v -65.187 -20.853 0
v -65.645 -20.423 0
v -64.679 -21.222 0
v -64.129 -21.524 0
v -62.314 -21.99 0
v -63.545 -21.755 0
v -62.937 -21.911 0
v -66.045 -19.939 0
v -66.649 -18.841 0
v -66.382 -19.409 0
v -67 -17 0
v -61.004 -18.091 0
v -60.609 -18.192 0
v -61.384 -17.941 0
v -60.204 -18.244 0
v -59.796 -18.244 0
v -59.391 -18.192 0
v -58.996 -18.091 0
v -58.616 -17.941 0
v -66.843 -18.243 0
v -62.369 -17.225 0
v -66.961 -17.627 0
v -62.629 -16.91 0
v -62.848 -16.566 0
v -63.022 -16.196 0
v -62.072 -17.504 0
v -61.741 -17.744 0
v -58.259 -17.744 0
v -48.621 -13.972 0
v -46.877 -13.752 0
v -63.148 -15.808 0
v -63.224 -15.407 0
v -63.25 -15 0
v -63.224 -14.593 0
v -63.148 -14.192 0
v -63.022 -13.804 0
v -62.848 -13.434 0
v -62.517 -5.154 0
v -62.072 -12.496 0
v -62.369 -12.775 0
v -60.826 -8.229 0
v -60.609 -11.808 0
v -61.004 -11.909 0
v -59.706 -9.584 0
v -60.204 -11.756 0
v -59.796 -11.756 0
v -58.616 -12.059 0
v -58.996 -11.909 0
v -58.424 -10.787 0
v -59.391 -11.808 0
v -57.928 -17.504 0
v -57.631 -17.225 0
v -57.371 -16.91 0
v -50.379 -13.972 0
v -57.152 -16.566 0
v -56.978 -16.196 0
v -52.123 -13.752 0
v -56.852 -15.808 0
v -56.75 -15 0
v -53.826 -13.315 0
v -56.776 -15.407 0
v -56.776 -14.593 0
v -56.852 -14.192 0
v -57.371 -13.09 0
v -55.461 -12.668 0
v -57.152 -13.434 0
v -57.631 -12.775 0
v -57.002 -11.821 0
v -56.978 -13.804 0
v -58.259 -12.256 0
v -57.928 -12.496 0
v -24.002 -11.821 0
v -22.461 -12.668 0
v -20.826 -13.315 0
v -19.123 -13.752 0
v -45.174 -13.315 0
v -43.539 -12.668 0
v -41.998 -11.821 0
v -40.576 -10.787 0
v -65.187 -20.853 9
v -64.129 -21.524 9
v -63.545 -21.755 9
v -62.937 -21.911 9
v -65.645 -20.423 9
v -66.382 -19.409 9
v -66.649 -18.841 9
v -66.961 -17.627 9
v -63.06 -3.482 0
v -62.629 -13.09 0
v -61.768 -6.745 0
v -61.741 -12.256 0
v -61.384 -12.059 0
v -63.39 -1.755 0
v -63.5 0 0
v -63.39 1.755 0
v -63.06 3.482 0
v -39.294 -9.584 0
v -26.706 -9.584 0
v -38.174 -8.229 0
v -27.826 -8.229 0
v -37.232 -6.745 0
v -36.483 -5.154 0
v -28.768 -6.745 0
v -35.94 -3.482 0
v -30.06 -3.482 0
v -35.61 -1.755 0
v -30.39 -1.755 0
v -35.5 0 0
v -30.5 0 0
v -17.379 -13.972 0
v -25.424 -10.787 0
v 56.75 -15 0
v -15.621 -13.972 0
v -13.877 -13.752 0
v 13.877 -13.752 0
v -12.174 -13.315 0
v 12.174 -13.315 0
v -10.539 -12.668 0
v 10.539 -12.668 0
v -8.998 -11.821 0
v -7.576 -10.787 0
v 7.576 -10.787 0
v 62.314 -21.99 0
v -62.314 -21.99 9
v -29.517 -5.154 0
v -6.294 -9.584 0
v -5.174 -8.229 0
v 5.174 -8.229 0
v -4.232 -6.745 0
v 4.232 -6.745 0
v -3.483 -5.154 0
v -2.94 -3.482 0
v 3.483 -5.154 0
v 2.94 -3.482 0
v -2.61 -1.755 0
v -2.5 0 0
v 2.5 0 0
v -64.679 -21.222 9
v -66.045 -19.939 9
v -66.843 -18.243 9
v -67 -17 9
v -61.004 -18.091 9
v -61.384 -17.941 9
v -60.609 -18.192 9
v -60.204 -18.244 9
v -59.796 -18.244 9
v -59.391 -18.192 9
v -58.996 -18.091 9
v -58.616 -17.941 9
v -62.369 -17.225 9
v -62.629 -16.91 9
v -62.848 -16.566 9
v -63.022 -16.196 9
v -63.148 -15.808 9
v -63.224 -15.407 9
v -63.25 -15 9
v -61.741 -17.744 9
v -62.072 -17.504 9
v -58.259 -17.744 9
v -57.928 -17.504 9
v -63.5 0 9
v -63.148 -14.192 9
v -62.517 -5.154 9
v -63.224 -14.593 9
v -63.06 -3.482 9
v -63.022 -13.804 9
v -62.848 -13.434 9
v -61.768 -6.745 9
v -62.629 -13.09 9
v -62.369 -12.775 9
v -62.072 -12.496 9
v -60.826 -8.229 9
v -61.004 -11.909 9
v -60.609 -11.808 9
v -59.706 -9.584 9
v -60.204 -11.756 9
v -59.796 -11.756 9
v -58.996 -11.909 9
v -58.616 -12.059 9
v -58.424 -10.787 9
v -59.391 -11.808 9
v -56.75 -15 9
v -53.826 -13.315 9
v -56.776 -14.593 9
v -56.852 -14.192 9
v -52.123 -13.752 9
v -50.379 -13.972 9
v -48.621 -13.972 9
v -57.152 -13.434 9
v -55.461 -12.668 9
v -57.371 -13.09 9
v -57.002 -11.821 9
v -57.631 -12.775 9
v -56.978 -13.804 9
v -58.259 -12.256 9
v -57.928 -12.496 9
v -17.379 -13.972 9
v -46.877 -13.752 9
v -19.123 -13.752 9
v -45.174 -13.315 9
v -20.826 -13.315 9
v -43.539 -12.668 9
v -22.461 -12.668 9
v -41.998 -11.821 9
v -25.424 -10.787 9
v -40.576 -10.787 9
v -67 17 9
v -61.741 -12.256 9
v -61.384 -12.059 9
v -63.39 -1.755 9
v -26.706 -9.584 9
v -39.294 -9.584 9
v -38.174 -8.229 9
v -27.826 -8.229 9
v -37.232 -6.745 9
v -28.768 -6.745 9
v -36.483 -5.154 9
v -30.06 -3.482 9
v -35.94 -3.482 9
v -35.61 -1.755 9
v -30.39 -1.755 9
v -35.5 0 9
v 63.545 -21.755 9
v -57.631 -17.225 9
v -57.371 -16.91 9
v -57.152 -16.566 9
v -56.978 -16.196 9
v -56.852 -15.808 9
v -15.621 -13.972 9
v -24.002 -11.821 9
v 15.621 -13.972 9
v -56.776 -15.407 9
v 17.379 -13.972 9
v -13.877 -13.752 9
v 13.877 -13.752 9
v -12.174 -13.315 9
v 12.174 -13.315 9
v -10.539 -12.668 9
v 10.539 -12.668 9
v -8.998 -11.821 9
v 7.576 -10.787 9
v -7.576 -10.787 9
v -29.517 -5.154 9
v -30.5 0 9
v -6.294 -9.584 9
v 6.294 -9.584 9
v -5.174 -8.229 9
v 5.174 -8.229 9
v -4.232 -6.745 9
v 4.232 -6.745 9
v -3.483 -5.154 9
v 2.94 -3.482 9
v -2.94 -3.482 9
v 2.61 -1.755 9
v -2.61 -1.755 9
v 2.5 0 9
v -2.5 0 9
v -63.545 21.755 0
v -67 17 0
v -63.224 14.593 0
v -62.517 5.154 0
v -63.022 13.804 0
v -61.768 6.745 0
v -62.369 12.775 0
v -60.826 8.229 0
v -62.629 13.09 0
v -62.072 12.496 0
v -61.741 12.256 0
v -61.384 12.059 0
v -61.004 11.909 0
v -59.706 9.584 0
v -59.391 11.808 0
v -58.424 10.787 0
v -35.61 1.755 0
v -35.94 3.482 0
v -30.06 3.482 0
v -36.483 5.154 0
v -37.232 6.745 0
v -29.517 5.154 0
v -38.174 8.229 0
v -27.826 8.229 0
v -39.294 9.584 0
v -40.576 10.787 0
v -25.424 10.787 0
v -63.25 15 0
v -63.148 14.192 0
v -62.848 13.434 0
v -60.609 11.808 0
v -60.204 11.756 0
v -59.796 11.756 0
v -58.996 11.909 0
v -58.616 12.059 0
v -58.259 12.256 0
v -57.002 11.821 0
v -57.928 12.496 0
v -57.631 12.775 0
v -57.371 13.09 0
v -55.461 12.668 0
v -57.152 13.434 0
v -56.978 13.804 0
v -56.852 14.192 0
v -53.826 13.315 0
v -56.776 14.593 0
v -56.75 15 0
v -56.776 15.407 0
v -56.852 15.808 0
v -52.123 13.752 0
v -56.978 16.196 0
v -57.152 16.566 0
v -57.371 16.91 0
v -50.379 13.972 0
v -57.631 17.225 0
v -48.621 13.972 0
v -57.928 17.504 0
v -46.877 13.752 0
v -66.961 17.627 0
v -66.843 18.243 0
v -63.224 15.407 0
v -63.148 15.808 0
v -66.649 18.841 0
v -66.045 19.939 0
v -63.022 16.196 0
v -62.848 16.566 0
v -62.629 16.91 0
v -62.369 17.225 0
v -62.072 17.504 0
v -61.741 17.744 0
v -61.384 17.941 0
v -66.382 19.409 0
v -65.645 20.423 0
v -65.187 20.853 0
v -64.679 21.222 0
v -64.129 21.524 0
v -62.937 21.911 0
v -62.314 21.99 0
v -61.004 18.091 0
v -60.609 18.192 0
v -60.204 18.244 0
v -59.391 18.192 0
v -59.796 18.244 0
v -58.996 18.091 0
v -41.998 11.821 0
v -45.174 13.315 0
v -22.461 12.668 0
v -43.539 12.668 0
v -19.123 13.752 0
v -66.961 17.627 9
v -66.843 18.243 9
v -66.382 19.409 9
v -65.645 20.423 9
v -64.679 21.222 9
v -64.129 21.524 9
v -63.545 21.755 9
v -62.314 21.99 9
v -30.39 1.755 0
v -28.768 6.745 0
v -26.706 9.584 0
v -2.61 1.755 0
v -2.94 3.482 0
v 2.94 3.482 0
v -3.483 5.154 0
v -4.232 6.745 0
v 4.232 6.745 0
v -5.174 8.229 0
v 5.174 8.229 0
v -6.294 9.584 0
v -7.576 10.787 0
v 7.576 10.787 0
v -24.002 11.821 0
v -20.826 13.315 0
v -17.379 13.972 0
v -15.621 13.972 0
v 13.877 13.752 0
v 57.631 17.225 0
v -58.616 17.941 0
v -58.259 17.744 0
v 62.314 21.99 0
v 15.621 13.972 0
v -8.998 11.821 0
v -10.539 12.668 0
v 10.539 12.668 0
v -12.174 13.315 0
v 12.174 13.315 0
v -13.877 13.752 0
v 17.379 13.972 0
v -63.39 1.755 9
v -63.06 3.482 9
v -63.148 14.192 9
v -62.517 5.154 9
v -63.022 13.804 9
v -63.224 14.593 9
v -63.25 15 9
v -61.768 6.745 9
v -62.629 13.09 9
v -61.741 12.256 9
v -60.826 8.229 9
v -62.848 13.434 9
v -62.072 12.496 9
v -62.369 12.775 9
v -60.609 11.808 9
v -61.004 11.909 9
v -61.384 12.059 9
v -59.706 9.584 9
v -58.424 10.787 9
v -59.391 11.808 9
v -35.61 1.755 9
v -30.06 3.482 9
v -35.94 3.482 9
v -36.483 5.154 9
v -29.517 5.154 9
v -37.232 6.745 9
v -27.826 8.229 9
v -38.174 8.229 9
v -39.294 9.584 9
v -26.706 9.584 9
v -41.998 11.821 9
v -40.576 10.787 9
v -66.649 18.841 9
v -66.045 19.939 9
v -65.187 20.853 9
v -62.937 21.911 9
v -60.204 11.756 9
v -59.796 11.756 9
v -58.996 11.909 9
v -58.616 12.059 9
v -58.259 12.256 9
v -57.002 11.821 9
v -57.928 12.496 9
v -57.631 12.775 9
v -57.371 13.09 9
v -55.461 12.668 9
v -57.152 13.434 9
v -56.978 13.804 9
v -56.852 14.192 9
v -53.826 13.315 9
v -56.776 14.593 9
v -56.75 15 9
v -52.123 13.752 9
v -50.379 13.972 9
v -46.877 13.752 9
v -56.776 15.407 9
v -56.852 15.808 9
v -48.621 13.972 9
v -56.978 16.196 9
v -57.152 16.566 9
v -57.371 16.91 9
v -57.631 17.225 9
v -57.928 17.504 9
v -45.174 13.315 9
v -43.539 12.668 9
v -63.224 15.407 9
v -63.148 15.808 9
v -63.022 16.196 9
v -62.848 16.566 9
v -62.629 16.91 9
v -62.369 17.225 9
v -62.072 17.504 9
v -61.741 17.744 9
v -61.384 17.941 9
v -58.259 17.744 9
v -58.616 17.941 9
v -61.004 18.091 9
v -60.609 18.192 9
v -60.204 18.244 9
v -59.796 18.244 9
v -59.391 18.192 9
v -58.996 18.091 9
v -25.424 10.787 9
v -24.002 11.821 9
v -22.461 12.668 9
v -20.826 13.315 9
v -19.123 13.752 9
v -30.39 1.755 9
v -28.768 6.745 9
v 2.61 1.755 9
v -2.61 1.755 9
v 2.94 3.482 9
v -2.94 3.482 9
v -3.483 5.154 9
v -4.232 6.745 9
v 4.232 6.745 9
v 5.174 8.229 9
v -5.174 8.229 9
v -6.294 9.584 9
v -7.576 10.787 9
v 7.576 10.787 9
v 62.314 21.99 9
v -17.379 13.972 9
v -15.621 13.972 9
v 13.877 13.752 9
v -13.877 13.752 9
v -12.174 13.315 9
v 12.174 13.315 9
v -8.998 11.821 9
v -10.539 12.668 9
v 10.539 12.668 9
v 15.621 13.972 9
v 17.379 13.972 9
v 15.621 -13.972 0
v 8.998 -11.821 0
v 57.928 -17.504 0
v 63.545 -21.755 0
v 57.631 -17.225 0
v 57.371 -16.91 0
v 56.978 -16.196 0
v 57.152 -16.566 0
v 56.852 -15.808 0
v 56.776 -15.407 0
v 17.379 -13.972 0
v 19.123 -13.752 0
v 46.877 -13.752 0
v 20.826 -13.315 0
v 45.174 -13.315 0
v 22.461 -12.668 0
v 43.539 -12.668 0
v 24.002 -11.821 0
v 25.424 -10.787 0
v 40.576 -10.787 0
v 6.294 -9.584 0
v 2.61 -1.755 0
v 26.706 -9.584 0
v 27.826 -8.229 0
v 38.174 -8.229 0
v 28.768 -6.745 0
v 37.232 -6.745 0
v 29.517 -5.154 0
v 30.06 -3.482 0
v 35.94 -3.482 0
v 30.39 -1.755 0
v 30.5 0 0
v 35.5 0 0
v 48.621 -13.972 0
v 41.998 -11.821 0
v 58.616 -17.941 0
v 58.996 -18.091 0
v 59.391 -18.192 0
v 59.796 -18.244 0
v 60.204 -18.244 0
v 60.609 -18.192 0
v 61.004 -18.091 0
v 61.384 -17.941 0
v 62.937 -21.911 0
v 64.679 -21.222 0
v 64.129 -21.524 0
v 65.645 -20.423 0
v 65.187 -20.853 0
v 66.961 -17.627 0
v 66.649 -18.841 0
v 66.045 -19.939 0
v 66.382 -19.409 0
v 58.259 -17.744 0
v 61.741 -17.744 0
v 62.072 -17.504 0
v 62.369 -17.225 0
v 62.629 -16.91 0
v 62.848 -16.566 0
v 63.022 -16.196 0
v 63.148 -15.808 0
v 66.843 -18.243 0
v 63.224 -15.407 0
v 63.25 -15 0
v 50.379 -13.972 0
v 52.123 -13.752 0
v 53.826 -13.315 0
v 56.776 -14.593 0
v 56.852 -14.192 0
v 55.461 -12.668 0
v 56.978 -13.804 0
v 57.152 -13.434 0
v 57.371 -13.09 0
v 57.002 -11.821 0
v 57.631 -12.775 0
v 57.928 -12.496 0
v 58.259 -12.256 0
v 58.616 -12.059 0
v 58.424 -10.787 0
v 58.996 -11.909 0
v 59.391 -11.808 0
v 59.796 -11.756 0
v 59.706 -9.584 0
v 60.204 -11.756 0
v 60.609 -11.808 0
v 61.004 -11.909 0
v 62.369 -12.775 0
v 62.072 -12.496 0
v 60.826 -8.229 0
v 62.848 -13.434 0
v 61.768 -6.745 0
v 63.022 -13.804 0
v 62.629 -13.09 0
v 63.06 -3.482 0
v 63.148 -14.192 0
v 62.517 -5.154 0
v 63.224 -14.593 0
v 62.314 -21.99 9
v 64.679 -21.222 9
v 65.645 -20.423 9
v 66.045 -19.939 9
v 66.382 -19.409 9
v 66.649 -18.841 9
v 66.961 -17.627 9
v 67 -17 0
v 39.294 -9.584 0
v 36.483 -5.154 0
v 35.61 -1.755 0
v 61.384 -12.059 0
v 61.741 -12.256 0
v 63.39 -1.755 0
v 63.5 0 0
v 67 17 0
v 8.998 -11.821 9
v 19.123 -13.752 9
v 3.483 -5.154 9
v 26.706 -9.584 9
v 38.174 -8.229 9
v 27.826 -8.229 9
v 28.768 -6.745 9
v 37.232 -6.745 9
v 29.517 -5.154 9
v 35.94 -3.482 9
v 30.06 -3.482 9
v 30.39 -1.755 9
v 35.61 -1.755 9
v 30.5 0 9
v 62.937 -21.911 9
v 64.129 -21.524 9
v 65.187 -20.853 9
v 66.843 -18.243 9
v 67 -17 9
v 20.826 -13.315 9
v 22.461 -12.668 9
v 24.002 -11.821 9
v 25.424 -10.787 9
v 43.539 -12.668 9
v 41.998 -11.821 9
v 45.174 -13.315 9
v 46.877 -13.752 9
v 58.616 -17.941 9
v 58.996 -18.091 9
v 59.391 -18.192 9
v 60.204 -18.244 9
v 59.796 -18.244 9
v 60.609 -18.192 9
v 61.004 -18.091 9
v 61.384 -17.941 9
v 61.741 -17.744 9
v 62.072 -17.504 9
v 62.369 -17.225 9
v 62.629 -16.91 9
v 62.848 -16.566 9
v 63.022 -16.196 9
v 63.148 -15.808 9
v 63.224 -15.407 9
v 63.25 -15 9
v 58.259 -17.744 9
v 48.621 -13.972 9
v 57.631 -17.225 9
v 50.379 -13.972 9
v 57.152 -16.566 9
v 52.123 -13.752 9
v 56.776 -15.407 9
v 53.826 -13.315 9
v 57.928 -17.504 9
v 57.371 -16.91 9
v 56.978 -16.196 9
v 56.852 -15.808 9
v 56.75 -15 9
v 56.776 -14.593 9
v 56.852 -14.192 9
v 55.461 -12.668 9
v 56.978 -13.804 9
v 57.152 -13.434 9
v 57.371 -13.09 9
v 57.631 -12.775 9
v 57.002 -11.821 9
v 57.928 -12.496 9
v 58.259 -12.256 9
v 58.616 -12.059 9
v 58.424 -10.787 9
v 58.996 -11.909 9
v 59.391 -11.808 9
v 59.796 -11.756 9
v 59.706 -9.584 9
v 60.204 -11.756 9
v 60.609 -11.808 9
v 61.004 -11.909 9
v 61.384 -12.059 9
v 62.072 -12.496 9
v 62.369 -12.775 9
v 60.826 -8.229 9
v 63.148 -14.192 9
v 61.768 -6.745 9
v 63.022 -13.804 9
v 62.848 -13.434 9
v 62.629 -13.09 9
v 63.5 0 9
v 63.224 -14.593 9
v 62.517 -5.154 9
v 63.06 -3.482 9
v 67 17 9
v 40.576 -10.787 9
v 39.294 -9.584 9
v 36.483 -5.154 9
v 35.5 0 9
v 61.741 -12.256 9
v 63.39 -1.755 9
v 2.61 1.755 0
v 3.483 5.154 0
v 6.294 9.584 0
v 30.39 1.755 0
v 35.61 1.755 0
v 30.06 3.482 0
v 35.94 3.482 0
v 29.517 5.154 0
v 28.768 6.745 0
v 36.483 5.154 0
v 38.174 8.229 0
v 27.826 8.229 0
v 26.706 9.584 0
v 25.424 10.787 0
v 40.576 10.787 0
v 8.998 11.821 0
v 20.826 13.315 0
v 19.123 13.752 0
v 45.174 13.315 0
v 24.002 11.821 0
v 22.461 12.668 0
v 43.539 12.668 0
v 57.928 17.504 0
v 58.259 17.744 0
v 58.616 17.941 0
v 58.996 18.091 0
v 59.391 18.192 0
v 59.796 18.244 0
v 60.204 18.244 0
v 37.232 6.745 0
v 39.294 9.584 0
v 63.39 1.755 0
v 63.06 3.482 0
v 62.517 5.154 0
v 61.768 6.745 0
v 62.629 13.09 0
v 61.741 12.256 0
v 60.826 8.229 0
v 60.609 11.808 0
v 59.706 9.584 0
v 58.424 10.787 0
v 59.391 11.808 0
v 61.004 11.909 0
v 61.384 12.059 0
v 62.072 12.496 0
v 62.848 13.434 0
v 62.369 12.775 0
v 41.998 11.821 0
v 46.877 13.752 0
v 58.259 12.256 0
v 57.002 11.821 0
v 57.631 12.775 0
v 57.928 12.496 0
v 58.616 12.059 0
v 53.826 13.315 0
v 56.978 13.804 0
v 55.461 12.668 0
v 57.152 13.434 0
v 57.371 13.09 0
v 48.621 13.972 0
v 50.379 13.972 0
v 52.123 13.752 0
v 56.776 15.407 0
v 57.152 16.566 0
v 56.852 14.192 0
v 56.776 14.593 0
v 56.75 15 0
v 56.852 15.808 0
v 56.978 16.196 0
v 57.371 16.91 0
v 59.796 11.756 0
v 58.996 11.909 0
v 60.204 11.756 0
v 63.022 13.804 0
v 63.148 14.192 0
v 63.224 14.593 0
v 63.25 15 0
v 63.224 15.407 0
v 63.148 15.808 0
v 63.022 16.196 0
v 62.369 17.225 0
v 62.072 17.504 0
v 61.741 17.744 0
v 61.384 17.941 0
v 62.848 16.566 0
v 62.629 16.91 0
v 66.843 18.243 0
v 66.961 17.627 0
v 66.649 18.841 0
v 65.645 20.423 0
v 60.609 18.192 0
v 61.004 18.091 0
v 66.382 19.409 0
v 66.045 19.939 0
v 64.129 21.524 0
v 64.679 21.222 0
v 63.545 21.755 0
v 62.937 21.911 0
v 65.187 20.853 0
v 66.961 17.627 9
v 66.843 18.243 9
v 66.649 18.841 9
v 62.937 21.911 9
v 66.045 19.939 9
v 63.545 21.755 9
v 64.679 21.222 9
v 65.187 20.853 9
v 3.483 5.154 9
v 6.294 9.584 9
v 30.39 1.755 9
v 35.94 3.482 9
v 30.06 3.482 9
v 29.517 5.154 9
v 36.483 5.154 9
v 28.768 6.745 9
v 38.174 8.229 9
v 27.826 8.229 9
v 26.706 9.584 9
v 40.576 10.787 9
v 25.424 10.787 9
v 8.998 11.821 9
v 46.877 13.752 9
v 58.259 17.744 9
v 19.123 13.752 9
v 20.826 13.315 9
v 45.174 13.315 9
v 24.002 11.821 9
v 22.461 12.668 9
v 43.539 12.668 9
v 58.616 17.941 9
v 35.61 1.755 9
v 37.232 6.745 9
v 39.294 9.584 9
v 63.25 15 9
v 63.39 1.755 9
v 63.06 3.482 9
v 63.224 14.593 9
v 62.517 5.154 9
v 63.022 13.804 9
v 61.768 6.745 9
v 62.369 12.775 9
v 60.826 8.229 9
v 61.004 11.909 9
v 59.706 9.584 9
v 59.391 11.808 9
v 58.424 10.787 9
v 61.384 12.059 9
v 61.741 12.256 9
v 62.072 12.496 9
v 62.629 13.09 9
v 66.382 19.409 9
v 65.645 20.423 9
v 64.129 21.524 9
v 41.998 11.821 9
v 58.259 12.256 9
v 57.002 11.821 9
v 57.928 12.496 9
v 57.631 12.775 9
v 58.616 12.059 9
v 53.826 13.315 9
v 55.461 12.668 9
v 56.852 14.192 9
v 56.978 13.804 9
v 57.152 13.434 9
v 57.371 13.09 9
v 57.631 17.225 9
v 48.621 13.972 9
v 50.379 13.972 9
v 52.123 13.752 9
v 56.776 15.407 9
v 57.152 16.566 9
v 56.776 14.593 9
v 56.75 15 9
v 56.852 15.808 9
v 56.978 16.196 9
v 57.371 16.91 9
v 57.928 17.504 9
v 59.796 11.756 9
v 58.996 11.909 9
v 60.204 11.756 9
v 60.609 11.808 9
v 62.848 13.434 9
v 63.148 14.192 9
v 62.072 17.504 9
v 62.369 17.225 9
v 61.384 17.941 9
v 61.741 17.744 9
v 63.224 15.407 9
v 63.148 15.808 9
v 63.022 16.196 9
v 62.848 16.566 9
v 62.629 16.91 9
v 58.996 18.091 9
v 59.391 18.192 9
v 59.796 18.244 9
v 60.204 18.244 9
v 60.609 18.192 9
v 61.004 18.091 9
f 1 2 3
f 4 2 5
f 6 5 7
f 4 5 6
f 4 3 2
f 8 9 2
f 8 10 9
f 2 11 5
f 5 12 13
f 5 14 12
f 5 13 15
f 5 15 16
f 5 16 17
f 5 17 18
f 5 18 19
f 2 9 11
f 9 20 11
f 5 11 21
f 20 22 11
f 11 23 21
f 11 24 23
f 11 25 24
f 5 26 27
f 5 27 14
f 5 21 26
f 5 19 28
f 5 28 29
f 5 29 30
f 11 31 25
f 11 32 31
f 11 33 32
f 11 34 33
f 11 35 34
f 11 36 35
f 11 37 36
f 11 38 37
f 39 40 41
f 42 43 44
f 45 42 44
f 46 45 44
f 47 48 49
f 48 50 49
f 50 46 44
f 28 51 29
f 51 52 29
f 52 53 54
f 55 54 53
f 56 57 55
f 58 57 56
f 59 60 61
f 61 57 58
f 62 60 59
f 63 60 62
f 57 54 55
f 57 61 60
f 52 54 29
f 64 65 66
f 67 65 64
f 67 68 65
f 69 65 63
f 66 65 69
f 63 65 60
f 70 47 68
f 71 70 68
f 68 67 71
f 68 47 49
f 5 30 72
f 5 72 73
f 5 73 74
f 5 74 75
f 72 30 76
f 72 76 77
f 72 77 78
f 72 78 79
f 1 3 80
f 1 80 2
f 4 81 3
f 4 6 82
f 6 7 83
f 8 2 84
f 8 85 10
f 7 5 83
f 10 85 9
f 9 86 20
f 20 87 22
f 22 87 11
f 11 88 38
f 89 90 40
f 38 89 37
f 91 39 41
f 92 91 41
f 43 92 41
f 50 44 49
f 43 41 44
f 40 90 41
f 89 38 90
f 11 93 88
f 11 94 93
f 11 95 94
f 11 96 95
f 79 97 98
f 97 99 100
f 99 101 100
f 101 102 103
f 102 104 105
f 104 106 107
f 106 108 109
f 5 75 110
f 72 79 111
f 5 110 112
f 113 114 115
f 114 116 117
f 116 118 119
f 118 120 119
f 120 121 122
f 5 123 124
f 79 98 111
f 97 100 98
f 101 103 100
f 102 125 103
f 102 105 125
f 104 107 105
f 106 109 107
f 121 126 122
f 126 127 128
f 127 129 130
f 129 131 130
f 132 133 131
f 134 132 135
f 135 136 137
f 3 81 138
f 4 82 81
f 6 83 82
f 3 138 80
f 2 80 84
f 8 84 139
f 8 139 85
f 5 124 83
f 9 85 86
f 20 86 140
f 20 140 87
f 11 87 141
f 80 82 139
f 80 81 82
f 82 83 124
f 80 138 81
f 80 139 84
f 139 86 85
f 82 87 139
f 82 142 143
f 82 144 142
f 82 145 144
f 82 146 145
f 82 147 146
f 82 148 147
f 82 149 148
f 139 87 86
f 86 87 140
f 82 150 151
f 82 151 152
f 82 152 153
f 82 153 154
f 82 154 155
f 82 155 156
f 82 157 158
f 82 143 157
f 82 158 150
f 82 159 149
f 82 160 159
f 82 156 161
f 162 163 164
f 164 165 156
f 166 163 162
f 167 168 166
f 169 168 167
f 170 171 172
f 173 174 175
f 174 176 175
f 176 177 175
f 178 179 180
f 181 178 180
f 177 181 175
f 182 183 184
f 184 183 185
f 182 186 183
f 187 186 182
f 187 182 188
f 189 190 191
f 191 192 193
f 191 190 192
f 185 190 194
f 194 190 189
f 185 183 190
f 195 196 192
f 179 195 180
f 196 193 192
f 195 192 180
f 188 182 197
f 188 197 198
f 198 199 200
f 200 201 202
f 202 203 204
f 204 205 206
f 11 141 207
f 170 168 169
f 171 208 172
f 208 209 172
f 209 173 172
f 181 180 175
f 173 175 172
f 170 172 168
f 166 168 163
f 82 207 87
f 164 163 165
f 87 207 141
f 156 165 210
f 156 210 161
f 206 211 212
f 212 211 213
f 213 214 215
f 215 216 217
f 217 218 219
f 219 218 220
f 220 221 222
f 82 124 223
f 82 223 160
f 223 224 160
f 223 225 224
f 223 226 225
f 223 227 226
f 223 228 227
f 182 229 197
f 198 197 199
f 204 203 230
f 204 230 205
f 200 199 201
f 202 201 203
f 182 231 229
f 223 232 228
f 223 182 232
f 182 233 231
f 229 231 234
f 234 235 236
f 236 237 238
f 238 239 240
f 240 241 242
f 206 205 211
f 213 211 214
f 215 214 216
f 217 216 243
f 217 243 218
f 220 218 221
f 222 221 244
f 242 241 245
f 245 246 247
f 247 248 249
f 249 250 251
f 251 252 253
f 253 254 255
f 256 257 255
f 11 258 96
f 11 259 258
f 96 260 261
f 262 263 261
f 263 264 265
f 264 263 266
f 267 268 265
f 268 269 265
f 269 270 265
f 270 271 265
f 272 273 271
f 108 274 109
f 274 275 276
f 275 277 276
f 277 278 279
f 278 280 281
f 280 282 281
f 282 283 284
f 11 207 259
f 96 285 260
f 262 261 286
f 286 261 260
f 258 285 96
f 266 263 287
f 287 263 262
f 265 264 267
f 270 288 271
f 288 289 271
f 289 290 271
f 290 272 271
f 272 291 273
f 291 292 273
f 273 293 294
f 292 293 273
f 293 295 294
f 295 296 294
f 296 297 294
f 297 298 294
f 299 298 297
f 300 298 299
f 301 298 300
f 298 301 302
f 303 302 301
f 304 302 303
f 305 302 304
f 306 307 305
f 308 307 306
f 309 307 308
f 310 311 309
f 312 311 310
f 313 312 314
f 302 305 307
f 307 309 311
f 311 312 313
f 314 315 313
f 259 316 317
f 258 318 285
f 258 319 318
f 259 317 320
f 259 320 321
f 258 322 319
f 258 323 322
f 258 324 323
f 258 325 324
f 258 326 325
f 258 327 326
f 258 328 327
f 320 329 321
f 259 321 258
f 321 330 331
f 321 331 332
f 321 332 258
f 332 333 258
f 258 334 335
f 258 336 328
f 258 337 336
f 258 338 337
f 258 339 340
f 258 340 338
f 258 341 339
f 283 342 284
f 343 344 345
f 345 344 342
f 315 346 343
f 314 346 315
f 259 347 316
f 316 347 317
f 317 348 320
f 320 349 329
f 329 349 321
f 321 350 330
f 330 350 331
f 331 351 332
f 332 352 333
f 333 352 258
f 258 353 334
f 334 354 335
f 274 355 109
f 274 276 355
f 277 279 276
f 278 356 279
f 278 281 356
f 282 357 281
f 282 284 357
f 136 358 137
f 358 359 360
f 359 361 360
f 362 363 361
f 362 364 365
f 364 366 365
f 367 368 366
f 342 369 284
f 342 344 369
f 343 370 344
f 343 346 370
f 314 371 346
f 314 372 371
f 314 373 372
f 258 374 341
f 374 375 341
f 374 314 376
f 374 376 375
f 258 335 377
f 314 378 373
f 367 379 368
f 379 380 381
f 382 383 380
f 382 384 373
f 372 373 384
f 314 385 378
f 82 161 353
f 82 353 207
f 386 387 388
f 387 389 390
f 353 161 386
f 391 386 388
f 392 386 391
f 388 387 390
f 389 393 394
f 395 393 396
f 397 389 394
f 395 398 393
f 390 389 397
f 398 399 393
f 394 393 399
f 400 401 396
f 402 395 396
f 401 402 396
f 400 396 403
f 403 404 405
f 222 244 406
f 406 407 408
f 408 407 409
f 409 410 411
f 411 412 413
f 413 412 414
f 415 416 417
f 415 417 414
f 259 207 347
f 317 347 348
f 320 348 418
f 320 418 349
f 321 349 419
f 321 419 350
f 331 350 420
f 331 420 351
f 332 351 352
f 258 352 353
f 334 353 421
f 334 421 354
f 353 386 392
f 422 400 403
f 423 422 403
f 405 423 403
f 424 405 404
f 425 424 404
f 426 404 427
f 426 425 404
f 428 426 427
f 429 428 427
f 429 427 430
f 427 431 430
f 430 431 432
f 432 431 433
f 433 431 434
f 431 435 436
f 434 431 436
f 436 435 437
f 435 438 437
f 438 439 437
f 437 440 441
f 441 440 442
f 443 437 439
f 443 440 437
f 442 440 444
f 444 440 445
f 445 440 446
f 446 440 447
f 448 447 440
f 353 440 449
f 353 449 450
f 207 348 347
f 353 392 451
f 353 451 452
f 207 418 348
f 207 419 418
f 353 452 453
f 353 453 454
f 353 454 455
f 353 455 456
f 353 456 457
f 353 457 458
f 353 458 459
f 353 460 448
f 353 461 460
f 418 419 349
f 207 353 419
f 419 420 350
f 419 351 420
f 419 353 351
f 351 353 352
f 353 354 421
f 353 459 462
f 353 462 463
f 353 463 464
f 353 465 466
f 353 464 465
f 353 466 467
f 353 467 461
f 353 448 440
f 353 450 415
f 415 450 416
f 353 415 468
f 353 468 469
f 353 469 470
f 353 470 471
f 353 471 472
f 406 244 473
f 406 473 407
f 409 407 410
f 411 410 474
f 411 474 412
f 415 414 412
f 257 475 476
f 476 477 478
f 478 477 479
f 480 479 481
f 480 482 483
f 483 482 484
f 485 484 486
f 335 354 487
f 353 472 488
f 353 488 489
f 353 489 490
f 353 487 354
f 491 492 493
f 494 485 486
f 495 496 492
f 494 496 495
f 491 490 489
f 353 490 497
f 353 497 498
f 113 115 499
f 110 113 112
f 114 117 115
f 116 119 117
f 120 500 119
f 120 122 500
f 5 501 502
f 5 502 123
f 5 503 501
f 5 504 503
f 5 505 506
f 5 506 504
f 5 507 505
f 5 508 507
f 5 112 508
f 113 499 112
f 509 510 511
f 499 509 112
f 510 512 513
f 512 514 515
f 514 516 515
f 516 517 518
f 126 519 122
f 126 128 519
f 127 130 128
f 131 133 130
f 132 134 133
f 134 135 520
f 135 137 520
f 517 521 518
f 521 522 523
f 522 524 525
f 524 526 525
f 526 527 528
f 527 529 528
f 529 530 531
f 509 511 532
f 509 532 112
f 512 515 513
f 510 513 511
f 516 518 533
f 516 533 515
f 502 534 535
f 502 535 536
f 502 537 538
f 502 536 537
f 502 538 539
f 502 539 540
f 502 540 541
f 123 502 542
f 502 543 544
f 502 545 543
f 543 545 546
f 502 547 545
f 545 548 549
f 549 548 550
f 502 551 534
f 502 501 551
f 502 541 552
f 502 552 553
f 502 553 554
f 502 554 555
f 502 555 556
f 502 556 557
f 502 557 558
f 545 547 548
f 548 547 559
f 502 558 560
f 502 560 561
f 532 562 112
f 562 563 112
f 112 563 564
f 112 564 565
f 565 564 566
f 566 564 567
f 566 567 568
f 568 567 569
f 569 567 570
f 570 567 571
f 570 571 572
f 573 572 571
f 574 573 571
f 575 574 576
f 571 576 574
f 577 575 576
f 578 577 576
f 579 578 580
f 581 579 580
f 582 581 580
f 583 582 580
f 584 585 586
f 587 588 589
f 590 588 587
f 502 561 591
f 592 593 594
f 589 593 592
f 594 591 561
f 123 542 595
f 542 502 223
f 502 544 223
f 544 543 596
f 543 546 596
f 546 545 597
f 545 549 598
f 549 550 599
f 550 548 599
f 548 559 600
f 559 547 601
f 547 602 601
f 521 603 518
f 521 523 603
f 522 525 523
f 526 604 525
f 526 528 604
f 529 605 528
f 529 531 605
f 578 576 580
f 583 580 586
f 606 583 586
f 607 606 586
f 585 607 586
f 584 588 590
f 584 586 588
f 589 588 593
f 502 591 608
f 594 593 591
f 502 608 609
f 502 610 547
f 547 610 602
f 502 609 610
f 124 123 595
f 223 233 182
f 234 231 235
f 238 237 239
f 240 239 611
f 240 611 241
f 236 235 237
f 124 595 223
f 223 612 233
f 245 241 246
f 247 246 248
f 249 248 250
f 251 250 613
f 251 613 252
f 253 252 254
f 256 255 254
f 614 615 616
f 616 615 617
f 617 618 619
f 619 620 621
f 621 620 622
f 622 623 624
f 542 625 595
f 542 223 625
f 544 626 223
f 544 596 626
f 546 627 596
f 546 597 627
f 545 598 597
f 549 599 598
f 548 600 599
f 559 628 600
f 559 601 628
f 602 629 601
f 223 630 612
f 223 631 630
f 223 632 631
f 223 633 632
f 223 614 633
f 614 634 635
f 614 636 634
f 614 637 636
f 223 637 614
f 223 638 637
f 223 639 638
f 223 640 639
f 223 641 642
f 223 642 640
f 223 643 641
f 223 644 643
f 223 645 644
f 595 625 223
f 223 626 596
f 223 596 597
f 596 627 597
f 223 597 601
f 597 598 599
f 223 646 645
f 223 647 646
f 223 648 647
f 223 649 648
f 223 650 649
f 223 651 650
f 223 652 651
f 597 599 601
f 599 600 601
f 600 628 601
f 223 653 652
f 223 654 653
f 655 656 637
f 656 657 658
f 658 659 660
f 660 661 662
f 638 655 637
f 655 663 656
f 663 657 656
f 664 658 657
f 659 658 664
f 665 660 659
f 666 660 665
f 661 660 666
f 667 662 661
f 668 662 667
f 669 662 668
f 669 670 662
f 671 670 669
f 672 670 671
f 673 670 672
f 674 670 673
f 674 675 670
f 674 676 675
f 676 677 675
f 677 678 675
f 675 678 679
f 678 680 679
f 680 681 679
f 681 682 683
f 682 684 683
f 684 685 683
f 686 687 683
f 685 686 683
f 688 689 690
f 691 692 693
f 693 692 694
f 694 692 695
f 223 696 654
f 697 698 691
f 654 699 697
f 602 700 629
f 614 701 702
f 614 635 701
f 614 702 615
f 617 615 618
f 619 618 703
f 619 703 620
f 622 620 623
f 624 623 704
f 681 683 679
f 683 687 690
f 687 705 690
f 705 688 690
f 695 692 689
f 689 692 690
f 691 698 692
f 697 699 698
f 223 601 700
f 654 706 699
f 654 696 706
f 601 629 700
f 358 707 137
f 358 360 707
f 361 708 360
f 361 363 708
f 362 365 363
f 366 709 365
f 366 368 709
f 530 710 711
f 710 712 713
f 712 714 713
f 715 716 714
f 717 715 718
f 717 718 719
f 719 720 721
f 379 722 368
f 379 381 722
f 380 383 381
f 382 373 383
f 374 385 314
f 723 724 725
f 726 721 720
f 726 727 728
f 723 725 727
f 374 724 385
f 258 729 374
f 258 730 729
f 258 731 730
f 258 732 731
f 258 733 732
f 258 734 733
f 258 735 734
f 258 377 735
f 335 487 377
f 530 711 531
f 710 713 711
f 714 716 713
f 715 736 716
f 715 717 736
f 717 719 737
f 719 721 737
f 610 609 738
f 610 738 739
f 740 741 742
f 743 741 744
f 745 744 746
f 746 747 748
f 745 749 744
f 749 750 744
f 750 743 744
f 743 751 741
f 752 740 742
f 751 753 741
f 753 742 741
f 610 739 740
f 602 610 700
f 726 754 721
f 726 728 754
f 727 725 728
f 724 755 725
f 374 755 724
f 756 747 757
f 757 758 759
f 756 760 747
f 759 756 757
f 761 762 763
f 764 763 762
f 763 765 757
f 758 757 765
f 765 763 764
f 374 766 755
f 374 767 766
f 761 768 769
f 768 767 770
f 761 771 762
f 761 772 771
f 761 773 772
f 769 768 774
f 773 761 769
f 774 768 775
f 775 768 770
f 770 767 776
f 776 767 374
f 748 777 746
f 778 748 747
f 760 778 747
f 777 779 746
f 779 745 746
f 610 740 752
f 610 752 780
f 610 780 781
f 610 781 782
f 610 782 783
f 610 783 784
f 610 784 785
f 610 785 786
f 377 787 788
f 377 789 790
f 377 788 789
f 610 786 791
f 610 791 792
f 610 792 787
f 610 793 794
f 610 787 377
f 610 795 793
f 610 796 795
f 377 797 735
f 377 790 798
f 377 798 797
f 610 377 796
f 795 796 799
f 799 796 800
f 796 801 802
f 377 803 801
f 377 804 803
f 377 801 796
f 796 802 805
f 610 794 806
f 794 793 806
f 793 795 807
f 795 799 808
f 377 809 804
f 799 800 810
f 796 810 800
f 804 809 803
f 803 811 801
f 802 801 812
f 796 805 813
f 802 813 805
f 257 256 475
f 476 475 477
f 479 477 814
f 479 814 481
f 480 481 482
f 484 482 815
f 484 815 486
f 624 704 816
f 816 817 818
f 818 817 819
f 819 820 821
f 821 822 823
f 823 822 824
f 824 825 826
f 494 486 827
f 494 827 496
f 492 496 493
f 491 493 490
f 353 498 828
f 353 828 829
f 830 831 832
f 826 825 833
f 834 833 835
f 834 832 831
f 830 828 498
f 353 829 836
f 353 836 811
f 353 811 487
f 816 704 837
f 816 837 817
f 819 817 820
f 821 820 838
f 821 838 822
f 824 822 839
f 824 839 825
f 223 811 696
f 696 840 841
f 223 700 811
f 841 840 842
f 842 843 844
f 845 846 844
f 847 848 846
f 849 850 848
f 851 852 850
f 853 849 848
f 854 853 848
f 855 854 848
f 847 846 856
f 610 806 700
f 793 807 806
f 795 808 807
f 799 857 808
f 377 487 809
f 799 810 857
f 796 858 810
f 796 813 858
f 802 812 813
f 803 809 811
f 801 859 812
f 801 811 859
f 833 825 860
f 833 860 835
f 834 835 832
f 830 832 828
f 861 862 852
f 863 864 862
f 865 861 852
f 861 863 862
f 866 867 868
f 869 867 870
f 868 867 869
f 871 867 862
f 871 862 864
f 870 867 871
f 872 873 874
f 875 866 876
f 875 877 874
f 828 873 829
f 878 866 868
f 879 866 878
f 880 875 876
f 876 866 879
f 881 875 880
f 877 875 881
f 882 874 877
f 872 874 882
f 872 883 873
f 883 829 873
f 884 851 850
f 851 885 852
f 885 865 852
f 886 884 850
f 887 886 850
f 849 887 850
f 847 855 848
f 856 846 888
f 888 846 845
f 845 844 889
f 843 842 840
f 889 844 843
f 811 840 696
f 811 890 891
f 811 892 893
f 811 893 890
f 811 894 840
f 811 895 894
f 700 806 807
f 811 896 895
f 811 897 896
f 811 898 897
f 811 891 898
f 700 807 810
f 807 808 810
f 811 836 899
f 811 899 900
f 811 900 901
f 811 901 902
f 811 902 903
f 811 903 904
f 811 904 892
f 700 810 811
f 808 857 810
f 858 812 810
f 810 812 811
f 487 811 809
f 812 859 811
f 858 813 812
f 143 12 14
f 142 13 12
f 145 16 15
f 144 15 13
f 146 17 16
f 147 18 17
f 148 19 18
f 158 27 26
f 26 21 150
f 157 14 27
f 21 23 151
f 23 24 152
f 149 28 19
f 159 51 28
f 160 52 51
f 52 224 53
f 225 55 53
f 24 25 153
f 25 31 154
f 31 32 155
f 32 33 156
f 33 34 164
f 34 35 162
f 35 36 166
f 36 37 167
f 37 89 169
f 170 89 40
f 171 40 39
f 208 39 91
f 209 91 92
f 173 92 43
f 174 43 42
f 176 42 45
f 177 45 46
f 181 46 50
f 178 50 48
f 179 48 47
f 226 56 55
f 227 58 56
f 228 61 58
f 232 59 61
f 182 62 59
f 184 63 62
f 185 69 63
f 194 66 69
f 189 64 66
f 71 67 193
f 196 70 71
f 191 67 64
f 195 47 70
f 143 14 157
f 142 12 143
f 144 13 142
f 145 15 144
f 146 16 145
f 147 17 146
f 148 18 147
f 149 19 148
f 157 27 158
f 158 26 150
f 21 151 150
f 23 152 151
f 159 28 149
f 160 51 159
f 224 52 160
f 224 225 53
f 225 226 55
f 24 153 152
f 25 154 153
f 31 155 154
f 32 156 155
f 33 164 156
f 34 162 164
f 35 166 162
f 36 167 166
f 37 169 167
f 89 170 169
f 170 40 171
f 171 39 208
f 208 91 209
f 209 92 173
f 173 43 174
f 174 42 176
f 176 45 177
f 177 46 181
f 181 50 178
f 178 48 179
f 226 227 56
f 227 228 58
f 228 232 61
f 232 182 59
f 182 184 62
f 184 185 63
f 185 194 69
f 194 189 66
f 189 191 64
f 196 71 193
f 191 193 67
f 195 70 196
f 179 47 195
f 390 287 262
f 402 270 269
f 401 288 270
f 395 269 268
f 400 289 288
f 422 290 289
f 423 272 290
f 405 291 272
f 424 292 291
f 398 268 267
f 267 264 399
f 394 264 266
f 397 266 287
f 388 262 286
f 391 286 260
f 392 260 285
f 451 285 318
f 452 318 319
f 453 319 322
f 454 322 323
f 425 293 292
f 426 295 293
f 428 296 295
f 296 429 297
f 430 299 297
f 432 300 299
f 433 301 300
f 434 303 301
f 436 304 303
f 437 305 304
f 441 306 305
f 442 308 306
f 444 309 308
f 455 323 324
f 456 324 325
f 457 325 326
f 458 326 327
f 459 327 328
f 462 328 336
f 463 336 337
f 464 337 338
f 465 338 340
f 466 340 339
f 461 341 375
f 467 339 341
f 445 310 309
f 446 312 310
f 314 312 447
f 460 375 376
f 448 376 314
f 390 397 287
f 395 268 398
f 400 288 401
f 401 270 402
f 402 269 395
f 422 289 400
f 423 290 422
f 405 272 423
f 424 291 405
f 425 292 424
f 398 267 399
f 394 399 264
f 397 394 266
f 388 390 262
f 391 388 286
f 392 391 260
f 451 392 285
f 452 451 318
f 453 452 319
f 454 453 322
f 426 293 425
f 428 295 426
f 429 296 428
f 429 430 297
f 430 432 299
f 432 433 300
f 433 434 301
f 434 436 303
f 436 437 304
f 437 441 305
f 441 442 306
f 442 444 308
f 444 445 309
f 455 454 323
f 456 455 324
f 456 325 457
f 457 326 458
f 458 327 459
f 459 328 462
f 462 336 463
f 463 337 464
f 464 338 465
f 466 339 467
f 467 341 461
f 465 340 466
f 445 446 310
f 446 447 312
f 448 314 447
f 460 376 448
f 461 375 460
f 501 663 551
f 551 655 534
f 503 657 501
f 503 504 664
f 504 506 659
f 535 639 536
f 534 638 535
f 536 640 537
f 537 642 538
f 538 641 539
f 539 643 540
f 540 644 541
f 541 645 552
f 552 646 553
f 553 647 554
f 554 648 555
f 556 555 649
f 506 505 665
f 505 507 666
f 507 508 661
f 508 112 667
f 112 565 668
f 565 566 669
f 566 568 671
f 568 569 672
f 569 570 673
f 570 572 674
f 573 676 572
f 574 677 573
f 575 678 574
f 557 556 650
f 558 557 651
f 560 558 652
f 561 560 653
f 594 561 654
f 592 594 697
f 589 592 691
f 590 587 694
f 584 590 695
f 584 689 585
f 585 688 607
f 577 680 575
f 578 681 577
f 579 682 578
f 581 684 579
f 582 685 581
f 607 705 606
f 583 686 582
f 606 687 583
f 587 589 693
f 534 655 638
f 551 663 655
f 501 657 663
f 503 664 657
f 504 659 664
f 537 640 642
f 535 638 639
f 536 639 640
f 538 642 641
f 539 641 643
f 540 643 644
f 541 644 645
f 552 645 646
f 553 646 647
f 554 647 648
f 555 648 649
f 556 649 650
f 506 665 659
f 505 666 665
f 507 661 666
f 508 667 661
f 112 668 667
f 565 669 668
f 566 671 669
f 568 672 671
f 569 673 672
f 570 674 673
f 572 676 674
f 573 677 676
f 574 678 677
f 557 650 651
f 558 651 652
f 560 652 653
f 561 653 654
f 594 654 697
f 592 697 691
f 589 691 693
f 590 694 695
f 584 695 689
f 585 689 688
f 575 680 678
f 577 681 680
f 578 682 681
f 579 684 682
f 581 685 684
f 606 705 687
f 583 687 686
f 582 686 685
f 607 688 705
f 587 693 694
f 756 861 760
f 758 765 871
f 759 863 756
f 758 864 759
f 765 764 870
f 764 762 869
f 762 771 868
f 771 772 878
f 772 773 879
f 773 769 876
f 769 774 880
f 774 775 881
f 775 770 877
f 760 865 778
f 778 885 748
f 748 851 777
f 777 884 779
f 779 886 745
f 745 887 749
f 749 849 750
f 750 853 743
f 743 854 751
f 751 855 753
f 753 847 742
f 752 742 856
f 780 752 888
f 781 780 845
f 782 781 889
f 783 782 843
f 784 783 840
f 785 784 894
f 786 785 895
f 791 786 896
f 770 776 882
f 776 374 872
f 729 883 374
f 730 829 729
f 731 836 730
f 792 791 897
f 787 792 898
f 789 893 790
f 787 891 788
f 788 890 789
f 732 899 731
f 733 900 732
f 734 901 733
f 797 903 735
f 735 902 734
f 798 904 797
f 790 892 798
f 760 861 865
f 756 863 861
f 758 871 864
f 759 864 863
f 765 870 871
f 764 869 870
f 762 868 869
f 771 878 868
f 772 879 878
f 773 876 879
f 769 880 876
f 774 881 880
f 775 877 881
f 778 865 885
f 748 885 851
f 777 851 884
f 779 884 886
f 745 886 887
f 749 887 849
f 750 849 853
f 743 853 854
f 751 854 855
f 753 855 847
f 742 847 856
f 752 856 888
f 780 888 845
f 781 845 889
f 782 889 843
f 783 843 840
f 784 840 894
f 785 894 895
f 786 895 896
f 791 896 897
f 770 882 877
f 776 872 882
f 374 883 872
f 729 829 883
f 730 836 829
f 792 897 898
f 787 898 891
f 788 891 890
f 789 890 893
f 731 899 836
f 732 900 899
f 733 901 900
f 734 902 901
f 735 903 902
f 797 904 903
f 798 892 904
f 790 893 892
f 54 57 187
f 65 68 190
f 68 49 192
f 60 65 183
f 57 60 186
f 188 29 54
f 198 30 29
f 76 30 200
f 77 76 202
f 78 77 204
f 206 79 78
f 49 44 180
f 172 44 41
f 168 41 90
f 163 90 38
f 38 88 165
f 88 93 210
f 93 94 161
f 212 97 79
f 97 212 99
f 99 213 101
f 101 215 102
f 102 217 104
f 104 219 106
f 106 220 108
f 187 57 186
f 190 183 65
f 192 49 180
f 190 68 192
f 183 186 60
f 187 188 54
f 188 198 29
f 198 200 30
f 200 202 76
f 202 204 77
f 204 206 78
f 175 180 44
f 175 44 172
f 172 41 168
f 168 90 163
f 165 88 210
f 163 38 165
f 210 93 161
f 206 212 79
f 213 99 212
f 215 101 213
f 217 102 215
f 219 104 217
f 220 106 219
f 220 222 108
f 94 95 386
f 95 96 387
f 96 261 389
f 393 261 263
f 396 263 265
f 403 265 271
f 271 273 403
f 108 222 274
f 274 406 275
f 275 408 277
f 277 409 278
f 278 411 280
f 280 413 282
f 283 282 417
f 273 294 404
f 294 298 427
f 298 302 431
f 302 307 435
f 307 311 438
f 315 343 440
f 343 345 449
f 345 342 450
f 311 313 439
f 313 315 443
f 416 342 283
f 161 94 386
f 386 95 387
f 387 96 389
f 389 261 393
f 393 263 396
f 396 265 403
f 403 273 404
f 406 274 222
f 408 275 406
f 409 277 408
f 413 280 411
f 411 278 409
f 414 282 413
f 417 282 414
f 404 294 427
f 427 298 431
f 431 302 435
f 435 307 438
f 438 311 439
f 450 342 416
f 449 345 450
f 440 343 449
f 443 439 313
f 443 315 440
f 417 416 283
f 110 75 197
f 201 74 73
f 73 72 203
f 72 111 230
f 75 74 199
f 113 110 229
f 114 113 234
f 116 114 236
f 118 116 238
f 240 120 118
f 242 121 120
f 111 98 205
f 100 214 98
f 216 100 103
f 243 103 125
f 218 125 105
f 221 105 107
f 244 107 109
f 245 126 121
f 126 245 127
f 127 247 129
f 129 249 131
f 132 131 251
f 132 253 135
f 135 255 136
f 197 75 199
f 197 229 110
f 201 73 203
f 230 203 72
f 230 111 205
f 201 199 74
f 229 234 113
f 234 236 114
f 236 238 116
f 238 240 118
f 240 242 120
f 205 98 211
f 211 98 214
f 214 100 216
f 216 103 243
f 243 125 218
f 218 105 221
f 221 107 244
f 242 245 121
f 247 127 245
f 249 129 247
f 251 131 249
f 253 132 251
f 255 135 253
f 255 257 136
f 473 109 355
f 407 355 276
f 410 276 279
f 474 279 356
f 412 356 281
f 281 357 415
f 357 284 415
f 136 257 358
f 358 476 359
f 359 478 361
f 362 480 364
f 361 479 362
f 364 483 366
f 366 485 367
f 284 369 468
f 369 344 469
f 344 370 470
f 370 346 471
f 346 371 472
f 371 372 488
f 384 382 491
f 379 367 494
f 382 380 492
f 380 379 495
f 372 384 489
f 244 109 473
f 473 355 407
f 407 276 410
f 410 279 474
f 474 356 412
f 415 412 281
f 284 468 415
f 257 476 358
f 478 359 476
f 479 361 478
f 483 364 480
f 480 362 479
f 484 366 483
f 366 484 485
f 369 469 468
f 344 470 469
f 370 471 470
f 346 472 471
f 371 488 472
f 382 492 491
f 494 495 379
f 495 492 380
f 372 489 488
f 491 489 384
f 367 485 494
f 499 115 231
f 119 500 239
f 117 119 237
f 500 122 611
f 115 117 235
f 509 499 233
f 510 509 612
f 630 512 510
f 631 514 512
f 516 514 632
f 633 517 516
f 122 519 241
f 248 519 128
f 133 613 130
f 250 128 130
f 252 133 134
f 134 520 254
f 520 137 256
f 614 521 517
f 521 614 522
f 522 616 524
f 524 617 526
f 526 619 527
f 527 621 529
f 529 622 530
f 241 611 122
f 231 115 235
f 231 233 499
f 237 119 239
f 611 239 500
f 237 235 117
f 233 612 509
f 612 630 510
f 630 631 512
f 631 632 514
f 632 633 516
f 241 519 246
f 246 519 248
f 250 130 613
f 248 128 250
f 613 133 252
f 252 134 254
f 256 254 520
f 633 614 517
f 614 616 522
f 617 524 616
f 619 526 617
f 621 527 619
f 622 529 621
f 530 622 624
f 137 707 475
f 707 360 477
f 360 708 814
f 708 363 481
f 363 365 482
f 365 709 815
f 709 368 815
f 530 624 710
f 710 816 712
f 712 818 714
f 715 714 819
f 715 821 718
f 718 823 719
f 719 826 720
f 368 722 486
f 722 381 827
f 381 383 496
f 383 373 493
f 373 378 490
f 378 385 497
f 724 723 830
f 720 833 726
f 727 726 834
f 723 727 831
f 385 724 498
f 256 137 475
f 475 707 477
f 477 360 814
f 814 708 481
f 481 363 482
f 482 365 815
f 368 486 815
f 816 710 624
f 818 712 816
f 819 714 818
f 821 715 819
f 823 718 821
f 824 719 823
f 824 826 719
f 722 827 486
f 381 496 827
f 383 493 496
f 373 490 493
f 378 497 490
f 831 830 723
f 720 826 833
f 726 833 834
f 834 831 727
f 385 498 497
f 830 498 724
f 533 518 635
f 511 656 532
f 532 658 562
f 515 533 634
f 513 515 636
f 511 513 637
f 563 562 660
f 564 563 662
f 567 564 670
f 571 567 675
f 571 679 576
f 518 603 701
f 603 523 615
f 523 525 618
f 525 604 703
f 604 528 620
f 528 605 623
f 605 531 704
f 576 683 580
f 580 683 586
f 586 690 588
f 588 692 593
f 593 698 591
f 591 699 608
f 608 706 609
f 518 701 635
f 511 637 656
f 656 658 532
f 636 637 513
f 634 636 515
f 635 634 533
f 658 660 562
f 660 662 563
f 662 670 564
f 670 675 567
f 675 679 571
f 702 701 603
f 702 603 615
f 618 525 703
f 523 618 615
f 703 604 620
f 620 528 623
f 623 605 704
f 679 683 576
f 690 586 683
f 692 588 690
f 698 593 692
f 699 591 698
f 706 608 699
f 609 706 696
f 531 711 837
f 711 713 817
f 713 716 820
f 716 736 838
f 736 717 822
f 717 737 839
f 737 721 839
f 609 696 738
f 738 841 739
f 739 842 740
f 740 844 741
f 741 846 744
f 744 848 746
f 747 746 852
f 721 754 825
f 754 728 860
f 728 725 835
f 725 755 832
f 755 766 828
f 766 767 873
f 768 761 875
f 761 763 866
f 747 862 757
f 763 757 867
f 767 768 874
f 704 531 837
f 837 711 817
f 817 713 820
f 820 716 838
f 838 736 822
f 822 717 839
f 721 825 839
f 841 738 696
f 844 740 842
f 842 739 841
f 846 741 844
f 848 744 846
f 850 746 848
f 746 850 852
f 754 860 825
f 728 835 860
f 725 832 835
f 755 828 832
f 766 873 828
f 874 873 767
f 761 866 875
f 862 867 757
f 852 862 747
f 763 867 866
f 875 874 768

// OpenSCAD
$fn = 50;

difference() {
	union() {
		hull() {
			translate(v = [-62.0, 17.0, 0]) {
				cylinder(h = 9, r = 5);
			}
			translate(v = [62.0, 17.0, 0]) {
				cylinder(h = 9, r = 5);
			}
			translate(v = [-62.0, -17.0, 0]) {
				cylinder(h = 9, r = 5);
			}
			translate(v = [62.0, -17.0, 0]) {
				cylinder(h = 9, r = 5);
			}
		}
	}
	union() {
		translate(v = [-60.0, -15.0, -100.0]) {
			cylinder(h = 200, r = 3.25);
		}
		translate(v = [-60.0, 15.0, -100.0]) {
			cylinder(h = 200, r = 3.25);
		}
		translate(v = [60.0, -15.0, -100.0]) {
			cylinder(h = 200, r = 3.25);
		}
		translate(v = [60.0, 15.0, -100.0]) {
			cylinder(h = 200, r = 3.25);
		}
		translate(v = [-60.0, -15.0, -100.0]) {
			cylinder(h = 200, r = 1.8);
		}
		translate(v = [-60.0, 15.0, -100.0]) {
			cylinder(h = 200, r = 1.8);
		}
		translate(v = [60.0, -15.0, -100.0]) {
			cylinder(h = 200, r = 1.8);
		}
		translate(v = [60.0, 15.0, -100.0]) {
			cylinder(h = 200, r = 1.8);
		}
		translate(v = [-49.5, 0, 0.0]) {
			cylinder(h = 9, r = 14.0);
		}
		translate(v = [-16.5, 0, 0.0]) {
			cylinder(h = 9, r = 14.0);
		}
		translate(v = [16.5, 0, 0.0]) {
			cylinder(h = 9, r = 14.0);
		}
		translate(v = [49.5, 0, 0.0]) {
			cylinder(h = 9, r = 14.0);
		}
	}
}
